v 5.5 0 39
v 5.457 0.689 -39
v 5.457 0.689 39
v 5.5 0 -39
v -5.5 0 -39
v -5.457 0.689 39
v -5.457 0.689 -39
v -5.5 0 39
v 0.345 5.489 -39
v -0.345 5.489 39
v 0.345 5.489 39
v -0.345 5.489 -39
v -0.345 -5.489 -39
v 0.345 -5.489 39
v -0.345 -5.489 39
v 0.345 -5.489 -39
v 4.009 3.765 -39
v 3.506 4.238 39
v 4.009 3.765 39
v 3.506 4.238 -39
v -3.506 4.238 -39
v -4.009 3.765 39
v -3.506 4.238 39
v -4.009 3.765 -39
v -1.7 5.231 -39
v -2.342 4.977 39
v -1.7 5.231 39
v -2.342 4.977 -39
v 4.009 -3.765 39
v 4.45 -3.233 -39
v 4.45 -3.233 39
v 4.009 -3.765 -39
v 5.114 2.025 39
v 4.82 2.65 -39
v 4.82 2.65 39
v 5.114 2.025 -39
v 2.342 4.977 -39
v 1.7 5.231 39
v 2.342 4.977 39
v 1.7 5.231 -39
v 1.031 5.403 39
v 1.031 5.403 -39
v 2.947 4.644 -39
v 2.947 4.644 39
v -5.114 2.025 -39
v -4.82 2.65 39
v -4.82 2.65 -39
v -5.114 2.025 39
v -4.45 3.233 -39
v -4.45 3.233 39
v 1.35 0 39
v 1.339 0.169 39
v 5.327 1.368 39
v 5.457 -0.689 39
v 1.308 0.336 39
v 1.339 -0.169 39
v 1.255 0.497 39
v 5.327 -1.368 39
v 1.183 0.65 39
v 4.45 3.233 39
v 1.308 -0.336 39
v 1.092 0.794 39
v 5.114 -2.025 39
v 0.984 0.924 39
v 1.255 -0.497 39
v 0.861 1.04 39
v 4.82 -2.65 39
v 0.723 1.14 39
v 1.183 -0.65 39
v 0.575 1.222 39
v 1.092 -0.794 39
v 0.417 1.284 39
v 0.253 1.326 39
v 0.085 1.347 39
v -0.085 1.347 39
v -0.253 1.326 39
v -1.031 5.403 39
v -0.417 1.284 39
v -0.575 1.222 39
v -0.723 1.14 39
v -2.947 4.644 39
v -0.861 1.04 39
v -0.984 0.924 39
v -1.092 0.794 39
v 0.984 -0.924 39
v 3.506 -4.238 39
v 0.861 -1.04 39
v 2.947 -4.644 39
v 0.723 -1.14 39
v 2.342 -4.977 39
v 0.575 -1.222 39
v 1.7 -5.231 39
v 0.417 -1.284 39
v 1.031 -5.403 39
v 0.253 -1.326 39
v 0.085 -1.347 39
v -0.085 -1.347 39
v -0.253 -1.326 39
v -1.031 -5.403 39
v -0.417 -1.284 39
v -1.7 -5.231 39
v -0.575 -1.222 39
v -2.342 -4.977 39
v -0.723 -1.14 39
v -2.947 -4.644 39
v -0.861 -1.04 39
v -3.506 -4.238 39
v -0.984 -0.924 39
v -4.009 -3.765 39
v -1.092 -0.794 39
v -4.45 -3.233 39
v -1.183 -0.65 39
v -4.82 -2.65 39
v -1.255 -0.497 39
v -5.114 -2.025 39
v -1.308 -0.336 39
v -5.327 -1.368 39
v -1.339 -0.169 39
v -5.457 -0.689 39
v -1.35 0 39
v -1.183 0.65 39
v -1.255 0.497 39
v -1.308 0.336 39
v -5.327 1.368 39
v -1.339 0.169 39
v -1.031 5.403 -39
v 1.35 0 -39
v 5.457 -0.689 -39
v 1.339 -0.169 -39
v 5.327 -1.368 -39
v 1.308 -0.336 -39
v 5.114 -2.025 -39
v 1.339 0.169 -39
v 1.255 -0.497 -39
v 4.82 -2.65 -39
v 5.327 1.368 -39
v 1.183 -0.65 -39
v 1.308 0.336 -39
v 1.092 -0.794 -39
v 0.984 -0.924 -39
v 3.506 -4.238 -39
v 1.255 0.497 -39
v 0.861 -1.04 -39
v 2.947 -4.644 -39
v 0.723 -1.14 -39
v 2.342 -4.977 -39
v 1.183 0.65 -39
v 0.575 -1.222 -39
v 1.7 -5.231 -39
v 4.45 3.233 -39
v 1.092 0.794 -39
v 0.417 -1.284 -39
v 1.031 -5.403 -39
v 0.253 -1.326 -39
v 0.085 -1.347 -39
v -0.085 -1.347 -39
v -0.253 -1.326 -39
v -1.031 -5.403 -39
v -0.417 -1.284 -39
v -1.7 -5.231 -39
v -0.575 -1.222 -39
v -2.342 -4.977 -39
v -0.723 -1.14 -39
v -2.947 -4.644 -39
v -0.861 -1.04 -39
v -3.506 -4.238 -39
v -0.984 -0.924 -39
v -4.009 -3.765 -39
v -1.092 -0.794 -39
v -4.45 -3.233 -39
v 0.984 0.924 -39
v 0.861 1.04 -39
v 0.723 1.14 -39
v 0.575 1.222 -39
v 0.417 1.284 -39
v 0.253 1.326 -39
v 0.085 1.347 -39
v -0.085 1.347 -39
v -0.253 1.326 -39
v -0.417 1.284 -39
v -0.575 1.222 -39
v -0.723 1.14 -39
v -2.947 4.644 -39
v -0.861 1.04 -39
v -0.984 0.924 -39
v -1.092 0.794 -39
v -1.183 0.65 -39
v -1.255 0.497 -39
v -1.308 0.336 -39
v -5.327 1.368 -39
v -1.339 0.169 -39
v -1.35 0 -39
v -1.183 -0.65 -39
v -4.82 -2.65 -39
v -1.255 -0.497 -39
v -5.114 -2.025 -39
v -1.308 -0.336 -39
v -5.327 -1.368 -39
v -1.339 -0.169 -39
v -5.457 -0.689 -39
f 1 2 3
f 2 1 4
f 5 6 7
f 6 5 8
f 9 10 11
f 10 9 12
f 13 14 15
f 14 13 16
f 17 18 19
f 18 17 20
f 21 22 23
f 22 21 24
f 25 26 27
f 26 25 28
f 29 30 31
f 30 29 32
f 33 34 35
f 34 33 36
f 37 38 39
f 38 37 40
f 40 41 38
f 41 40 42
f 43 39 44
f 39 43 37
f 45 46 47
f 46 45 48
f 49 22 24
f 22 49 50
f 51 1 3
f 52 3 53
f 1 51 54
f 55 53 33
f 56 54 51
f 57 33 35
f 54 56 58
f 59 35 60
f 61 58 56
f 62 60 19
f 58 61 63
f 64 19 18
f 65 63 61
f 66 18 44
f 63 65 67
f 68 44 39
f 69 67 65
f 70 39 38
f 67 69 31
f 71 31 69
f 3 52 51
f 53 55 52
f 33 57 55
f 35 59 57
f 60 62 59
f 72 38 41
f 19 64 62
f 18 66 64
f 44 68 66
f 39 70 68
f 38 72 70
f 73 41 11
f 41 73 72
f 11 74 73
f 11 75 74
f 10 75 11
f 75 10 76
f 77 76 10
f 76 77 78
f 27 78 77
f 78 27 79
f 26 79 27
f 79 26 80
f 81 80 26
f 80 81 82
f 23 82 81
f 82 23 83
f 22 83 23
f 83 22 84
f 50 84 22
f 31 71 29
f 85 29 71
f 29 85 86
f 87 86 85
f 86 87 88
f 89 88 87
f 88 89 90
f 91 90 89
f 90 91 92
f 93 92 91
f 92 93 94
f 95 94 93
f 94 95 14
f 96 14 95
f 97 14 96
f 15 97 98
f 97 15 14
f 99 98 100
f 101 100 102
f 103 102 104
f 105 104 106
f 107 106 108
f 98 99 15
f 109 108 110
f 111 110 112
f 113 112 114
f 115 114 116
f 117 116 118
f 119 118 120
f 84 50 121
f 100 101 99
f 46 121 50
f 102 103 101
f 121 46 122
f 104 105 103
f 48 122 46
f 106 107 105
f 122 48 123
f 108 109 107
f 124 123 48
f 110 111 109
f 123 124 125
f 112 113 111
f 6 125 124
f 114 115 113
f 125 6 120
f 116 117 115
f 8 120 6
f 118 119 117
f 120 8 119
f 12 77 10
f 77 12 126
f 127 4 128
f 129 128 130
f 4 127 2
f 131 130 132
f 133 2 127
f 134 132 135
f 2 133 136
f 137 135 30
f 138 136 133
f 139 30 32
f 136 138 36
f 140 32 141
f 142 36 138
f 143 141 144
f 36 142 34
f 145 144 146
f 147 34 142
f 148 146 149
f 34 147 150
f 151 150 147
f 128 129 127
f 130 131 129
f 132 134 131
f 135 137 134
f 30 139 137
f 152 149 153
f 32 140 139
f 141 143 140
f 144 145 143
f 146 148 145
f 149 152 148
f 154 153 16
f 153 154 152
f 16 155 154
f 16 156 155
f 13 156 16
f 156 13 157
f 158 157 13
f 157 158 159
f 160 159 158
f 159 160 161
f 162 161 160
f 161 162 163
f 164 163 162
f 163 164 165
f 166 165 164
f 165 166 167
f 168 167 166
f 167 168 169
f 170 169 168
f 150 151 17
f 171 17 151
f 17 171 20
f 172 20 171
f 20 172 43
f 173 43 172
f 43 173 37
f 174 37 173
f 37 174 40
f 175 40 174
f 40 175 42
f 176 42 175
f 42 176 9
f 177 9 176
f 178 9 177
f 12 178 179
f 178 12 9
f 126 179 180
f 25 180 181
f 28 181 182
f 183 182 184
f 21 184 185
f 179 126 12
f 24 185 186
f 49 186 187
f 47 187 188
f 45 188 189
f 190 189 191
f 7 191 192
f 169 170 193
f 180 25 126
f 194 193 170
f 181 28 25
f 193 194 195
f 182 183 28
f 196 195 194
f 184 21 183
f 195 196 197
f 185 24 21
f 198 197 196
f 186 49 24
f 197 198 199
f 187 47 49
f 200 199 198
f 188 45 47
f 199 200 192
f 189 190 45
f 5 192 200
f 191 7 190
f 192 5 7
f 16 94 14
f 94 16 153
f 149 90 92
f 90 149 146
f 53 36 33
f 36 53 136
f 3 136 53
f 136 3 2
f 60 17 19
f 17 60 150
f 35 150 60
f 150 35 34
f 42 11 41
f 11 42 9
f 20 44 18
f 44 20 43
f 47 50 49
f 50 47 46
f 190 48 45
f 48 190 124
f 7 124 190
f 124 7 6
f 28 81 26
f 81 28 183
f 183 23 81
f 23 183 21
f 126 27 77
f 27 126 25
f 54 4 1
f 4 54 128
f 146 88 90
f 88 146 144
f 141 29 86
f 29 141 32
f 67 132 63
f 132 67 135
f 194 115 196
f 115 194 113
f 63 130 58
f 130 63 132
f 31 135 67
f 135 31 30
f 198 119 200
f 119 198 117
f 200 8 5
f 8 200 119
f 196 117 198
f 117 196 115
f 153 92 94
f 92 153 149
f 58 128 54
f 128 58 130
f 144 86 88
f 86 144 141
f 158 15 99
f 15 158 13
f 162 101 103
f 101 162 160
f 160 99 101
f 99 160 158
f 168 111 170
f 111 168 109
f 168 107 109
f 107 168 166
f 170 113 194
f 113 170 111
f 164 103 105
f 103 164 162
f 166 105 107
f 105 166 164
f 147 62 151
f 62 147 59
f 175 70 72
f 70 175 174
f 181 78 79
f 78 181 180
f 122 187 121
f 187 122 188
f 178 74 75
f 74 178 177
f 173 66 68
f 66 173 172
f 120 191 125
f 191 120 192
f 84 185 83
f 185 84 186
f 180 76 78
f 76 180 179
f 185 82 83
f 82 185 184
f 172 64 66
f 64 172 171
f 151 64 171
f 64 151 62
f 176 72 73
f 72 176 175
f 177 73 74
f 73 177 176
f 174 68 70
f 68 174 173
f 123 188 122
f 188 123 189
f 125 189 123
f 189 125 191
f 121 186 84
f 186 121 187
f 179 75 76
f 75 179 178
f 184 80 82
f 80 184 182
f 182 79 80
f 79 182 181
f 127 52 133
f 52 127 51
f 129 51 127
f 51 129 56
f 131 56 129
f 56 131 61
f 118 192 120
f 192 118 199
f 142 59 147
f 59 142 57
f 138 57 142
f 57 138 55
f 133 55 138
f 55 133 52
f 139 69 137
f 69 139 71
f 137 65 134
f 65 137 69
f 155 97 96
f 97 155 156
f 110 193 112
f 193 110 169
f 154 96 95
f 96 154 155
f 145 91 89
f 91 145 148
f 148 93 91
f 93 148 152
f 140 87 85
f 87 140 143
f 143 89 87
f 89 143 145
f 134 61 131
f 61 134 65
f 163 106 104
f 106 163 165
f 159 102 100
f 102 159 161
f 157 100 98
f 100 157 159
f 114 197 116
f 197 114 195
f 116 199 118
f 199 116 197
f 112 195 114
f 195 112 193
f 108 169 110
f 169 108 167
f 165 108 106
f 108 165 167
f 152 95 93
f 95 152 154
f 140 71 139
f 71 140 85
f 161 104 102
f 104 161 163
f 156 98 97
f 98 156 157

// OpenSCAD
$fn = 50;


difference() {
	union() {
		translate(v = [0, 0, -39.0000000000]) {
			cylinder(h = 78, r = 5.5000000000);
		}
	}
	union() {
		translate(v = [0, 0, -100.0000000000]) {
			cylinder(h = 200, r = 1.3500000000);
		}
	}
}
